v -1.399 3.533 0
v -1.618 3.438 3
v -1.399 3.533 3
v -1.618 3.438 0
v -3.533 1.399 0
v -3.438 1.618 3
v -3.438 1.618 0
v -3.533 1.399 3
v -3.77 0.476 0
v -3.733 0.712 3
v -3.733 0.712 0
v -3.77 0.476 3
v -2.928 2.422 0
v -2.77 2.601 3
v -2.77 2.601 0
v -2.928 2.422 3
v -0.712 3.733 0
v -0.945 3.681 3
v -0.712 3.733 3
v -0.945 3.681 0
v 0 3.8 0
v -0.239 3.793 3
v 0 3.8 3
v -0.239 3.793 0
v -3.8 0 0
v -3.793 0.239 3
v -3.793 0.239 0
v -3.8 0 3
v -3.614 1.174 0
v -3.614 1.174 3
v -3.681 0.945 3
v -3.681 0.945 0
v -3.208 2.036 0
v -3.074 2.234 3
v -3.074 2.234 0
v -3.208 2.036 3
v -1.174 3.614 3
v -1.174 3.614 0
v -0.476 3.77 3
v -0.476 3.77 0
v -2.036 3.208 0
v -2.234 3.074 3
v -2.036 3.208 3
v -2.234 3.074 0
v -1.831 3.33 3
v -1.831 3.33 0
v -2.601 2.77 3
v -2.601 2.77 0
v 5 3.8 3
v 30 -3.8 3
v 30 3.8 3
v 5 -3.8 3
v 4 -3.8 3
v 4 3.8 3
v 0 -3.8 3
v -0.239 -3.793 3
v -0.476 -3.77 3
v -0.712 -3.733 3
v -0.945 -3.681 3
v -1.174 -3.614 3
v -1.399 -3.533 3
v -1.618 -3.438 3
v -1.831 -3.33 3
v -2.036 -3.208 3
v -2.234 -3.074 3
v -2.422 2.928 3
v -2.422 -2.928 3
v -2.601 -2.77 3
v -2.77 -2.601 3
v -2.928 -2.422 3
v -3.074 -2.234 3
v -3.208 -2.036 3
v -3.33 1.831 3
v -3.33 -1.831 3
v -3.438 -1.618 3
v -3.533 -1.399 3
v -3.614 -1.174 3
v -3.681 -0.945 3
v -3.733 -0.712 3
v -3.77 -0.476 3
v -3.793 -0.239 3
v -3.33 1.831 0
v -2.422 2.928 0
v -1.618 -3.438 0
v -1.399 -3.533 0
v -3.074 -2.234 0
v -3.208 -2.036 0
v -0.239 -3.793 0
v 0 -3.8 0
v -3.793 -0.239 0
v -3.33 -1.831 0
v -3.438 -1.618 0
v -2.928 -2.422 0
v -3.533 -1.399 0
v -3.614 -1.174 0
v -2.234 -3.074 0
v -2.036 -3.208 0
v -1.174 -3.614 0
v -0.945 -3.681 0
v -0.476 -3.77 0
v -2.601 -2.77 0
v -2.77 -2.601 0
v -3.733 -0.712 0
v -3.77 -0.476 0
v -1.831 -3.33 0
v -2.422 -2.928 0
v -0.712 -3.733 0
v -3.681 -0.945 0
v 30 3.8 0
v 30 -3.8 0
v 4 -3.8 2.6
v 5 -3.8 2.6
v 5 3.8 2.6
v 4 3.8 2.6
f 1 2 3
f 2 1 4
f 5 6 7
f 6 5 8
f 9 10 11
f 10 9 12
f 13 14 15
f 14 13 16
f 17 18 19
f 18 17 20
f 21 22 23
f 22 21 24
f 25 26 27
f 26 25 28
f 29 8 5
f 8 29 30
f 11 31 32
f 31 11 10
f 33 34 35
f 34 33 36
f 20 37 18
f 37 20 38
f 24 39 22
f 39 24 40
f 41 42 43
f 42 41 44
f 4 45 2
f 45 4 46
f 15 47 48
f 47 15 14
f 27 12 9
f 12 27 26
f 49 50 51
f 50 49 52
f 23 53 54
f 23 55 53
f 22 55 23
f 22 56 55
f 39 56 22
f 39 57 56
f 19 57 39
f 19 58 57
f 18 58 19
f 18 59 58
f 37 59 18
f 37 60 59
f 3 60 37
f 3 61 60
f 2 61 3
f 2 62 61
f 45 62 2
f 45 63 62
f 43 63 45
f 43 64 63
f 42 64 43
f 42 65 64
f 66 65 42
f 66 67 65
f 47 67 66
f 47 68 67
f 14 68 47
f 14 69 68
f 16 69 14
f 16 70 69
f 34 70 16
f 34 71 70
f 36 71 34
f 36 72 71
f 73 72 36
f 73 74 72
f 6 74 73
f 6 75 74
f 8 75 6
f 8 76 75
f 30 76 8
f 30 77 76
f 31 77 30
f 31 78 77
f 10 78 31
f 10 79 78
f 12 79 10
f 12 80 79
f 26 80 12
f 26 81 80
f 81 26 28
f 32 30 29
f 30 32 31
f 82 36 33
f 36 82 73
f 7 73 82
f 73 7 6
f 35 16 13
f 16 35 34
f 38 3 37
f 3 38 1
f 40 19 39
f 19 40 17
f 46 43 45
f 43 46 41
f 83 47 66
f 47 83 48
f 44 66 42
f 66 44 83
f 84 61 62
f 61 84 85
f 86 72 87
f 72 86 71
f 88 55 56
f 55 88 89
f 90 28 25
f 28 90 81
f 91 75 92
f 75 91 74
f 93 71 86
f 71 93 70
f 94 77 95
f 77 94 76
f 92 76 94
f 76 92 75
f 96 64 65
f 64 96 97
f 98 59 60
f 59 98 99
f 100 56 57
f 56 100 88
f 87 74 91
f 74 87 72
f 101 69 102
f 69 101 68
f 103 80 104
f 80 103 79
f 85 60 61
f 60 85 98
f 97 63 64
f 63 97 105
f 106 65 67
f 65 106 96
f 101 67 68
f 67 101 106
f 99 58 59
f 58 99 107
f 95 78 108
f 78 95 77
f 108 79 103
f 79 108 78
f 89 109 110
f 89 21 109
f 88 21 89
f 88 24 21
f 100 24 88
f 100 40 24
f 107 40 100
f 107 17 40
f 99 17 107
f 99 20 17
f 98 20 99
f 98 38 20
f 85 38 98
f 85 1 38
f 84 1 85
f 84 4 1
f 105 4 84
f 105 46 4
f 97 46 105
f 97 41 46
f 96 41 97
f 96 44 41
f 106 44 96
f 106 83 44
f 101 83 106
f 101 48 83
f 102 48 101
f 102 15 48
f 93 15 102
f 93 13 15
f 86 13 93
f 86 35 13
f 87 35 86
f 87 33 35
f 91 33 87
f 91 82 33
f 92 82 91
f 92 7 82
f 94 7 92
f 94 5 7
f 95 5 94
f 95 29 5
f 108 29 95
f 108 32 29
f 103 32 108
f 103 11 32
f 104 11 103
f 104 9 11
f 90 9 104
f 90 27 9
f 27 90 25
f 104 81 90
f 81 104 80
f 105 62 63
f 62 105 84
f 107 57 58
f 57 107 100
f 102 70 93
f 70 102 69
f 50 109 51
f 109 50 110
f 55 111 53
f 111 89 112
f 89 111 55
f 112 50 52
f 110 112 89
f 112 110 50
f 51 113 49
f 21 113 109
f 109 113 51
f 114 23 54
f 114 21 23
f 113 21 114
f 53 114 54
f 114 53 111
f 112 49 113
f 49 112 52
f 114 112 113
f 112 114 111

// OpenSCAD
//round magnet test
$fn=100;

difference() {
    union() {
cylinder(d=7.6, h=3);
translate([0, -3.8, 0]) cube([30, 7.6, 3]);   
    }
    translate([4, -5, 2.6]) cube([1, 10, 2]);
}
